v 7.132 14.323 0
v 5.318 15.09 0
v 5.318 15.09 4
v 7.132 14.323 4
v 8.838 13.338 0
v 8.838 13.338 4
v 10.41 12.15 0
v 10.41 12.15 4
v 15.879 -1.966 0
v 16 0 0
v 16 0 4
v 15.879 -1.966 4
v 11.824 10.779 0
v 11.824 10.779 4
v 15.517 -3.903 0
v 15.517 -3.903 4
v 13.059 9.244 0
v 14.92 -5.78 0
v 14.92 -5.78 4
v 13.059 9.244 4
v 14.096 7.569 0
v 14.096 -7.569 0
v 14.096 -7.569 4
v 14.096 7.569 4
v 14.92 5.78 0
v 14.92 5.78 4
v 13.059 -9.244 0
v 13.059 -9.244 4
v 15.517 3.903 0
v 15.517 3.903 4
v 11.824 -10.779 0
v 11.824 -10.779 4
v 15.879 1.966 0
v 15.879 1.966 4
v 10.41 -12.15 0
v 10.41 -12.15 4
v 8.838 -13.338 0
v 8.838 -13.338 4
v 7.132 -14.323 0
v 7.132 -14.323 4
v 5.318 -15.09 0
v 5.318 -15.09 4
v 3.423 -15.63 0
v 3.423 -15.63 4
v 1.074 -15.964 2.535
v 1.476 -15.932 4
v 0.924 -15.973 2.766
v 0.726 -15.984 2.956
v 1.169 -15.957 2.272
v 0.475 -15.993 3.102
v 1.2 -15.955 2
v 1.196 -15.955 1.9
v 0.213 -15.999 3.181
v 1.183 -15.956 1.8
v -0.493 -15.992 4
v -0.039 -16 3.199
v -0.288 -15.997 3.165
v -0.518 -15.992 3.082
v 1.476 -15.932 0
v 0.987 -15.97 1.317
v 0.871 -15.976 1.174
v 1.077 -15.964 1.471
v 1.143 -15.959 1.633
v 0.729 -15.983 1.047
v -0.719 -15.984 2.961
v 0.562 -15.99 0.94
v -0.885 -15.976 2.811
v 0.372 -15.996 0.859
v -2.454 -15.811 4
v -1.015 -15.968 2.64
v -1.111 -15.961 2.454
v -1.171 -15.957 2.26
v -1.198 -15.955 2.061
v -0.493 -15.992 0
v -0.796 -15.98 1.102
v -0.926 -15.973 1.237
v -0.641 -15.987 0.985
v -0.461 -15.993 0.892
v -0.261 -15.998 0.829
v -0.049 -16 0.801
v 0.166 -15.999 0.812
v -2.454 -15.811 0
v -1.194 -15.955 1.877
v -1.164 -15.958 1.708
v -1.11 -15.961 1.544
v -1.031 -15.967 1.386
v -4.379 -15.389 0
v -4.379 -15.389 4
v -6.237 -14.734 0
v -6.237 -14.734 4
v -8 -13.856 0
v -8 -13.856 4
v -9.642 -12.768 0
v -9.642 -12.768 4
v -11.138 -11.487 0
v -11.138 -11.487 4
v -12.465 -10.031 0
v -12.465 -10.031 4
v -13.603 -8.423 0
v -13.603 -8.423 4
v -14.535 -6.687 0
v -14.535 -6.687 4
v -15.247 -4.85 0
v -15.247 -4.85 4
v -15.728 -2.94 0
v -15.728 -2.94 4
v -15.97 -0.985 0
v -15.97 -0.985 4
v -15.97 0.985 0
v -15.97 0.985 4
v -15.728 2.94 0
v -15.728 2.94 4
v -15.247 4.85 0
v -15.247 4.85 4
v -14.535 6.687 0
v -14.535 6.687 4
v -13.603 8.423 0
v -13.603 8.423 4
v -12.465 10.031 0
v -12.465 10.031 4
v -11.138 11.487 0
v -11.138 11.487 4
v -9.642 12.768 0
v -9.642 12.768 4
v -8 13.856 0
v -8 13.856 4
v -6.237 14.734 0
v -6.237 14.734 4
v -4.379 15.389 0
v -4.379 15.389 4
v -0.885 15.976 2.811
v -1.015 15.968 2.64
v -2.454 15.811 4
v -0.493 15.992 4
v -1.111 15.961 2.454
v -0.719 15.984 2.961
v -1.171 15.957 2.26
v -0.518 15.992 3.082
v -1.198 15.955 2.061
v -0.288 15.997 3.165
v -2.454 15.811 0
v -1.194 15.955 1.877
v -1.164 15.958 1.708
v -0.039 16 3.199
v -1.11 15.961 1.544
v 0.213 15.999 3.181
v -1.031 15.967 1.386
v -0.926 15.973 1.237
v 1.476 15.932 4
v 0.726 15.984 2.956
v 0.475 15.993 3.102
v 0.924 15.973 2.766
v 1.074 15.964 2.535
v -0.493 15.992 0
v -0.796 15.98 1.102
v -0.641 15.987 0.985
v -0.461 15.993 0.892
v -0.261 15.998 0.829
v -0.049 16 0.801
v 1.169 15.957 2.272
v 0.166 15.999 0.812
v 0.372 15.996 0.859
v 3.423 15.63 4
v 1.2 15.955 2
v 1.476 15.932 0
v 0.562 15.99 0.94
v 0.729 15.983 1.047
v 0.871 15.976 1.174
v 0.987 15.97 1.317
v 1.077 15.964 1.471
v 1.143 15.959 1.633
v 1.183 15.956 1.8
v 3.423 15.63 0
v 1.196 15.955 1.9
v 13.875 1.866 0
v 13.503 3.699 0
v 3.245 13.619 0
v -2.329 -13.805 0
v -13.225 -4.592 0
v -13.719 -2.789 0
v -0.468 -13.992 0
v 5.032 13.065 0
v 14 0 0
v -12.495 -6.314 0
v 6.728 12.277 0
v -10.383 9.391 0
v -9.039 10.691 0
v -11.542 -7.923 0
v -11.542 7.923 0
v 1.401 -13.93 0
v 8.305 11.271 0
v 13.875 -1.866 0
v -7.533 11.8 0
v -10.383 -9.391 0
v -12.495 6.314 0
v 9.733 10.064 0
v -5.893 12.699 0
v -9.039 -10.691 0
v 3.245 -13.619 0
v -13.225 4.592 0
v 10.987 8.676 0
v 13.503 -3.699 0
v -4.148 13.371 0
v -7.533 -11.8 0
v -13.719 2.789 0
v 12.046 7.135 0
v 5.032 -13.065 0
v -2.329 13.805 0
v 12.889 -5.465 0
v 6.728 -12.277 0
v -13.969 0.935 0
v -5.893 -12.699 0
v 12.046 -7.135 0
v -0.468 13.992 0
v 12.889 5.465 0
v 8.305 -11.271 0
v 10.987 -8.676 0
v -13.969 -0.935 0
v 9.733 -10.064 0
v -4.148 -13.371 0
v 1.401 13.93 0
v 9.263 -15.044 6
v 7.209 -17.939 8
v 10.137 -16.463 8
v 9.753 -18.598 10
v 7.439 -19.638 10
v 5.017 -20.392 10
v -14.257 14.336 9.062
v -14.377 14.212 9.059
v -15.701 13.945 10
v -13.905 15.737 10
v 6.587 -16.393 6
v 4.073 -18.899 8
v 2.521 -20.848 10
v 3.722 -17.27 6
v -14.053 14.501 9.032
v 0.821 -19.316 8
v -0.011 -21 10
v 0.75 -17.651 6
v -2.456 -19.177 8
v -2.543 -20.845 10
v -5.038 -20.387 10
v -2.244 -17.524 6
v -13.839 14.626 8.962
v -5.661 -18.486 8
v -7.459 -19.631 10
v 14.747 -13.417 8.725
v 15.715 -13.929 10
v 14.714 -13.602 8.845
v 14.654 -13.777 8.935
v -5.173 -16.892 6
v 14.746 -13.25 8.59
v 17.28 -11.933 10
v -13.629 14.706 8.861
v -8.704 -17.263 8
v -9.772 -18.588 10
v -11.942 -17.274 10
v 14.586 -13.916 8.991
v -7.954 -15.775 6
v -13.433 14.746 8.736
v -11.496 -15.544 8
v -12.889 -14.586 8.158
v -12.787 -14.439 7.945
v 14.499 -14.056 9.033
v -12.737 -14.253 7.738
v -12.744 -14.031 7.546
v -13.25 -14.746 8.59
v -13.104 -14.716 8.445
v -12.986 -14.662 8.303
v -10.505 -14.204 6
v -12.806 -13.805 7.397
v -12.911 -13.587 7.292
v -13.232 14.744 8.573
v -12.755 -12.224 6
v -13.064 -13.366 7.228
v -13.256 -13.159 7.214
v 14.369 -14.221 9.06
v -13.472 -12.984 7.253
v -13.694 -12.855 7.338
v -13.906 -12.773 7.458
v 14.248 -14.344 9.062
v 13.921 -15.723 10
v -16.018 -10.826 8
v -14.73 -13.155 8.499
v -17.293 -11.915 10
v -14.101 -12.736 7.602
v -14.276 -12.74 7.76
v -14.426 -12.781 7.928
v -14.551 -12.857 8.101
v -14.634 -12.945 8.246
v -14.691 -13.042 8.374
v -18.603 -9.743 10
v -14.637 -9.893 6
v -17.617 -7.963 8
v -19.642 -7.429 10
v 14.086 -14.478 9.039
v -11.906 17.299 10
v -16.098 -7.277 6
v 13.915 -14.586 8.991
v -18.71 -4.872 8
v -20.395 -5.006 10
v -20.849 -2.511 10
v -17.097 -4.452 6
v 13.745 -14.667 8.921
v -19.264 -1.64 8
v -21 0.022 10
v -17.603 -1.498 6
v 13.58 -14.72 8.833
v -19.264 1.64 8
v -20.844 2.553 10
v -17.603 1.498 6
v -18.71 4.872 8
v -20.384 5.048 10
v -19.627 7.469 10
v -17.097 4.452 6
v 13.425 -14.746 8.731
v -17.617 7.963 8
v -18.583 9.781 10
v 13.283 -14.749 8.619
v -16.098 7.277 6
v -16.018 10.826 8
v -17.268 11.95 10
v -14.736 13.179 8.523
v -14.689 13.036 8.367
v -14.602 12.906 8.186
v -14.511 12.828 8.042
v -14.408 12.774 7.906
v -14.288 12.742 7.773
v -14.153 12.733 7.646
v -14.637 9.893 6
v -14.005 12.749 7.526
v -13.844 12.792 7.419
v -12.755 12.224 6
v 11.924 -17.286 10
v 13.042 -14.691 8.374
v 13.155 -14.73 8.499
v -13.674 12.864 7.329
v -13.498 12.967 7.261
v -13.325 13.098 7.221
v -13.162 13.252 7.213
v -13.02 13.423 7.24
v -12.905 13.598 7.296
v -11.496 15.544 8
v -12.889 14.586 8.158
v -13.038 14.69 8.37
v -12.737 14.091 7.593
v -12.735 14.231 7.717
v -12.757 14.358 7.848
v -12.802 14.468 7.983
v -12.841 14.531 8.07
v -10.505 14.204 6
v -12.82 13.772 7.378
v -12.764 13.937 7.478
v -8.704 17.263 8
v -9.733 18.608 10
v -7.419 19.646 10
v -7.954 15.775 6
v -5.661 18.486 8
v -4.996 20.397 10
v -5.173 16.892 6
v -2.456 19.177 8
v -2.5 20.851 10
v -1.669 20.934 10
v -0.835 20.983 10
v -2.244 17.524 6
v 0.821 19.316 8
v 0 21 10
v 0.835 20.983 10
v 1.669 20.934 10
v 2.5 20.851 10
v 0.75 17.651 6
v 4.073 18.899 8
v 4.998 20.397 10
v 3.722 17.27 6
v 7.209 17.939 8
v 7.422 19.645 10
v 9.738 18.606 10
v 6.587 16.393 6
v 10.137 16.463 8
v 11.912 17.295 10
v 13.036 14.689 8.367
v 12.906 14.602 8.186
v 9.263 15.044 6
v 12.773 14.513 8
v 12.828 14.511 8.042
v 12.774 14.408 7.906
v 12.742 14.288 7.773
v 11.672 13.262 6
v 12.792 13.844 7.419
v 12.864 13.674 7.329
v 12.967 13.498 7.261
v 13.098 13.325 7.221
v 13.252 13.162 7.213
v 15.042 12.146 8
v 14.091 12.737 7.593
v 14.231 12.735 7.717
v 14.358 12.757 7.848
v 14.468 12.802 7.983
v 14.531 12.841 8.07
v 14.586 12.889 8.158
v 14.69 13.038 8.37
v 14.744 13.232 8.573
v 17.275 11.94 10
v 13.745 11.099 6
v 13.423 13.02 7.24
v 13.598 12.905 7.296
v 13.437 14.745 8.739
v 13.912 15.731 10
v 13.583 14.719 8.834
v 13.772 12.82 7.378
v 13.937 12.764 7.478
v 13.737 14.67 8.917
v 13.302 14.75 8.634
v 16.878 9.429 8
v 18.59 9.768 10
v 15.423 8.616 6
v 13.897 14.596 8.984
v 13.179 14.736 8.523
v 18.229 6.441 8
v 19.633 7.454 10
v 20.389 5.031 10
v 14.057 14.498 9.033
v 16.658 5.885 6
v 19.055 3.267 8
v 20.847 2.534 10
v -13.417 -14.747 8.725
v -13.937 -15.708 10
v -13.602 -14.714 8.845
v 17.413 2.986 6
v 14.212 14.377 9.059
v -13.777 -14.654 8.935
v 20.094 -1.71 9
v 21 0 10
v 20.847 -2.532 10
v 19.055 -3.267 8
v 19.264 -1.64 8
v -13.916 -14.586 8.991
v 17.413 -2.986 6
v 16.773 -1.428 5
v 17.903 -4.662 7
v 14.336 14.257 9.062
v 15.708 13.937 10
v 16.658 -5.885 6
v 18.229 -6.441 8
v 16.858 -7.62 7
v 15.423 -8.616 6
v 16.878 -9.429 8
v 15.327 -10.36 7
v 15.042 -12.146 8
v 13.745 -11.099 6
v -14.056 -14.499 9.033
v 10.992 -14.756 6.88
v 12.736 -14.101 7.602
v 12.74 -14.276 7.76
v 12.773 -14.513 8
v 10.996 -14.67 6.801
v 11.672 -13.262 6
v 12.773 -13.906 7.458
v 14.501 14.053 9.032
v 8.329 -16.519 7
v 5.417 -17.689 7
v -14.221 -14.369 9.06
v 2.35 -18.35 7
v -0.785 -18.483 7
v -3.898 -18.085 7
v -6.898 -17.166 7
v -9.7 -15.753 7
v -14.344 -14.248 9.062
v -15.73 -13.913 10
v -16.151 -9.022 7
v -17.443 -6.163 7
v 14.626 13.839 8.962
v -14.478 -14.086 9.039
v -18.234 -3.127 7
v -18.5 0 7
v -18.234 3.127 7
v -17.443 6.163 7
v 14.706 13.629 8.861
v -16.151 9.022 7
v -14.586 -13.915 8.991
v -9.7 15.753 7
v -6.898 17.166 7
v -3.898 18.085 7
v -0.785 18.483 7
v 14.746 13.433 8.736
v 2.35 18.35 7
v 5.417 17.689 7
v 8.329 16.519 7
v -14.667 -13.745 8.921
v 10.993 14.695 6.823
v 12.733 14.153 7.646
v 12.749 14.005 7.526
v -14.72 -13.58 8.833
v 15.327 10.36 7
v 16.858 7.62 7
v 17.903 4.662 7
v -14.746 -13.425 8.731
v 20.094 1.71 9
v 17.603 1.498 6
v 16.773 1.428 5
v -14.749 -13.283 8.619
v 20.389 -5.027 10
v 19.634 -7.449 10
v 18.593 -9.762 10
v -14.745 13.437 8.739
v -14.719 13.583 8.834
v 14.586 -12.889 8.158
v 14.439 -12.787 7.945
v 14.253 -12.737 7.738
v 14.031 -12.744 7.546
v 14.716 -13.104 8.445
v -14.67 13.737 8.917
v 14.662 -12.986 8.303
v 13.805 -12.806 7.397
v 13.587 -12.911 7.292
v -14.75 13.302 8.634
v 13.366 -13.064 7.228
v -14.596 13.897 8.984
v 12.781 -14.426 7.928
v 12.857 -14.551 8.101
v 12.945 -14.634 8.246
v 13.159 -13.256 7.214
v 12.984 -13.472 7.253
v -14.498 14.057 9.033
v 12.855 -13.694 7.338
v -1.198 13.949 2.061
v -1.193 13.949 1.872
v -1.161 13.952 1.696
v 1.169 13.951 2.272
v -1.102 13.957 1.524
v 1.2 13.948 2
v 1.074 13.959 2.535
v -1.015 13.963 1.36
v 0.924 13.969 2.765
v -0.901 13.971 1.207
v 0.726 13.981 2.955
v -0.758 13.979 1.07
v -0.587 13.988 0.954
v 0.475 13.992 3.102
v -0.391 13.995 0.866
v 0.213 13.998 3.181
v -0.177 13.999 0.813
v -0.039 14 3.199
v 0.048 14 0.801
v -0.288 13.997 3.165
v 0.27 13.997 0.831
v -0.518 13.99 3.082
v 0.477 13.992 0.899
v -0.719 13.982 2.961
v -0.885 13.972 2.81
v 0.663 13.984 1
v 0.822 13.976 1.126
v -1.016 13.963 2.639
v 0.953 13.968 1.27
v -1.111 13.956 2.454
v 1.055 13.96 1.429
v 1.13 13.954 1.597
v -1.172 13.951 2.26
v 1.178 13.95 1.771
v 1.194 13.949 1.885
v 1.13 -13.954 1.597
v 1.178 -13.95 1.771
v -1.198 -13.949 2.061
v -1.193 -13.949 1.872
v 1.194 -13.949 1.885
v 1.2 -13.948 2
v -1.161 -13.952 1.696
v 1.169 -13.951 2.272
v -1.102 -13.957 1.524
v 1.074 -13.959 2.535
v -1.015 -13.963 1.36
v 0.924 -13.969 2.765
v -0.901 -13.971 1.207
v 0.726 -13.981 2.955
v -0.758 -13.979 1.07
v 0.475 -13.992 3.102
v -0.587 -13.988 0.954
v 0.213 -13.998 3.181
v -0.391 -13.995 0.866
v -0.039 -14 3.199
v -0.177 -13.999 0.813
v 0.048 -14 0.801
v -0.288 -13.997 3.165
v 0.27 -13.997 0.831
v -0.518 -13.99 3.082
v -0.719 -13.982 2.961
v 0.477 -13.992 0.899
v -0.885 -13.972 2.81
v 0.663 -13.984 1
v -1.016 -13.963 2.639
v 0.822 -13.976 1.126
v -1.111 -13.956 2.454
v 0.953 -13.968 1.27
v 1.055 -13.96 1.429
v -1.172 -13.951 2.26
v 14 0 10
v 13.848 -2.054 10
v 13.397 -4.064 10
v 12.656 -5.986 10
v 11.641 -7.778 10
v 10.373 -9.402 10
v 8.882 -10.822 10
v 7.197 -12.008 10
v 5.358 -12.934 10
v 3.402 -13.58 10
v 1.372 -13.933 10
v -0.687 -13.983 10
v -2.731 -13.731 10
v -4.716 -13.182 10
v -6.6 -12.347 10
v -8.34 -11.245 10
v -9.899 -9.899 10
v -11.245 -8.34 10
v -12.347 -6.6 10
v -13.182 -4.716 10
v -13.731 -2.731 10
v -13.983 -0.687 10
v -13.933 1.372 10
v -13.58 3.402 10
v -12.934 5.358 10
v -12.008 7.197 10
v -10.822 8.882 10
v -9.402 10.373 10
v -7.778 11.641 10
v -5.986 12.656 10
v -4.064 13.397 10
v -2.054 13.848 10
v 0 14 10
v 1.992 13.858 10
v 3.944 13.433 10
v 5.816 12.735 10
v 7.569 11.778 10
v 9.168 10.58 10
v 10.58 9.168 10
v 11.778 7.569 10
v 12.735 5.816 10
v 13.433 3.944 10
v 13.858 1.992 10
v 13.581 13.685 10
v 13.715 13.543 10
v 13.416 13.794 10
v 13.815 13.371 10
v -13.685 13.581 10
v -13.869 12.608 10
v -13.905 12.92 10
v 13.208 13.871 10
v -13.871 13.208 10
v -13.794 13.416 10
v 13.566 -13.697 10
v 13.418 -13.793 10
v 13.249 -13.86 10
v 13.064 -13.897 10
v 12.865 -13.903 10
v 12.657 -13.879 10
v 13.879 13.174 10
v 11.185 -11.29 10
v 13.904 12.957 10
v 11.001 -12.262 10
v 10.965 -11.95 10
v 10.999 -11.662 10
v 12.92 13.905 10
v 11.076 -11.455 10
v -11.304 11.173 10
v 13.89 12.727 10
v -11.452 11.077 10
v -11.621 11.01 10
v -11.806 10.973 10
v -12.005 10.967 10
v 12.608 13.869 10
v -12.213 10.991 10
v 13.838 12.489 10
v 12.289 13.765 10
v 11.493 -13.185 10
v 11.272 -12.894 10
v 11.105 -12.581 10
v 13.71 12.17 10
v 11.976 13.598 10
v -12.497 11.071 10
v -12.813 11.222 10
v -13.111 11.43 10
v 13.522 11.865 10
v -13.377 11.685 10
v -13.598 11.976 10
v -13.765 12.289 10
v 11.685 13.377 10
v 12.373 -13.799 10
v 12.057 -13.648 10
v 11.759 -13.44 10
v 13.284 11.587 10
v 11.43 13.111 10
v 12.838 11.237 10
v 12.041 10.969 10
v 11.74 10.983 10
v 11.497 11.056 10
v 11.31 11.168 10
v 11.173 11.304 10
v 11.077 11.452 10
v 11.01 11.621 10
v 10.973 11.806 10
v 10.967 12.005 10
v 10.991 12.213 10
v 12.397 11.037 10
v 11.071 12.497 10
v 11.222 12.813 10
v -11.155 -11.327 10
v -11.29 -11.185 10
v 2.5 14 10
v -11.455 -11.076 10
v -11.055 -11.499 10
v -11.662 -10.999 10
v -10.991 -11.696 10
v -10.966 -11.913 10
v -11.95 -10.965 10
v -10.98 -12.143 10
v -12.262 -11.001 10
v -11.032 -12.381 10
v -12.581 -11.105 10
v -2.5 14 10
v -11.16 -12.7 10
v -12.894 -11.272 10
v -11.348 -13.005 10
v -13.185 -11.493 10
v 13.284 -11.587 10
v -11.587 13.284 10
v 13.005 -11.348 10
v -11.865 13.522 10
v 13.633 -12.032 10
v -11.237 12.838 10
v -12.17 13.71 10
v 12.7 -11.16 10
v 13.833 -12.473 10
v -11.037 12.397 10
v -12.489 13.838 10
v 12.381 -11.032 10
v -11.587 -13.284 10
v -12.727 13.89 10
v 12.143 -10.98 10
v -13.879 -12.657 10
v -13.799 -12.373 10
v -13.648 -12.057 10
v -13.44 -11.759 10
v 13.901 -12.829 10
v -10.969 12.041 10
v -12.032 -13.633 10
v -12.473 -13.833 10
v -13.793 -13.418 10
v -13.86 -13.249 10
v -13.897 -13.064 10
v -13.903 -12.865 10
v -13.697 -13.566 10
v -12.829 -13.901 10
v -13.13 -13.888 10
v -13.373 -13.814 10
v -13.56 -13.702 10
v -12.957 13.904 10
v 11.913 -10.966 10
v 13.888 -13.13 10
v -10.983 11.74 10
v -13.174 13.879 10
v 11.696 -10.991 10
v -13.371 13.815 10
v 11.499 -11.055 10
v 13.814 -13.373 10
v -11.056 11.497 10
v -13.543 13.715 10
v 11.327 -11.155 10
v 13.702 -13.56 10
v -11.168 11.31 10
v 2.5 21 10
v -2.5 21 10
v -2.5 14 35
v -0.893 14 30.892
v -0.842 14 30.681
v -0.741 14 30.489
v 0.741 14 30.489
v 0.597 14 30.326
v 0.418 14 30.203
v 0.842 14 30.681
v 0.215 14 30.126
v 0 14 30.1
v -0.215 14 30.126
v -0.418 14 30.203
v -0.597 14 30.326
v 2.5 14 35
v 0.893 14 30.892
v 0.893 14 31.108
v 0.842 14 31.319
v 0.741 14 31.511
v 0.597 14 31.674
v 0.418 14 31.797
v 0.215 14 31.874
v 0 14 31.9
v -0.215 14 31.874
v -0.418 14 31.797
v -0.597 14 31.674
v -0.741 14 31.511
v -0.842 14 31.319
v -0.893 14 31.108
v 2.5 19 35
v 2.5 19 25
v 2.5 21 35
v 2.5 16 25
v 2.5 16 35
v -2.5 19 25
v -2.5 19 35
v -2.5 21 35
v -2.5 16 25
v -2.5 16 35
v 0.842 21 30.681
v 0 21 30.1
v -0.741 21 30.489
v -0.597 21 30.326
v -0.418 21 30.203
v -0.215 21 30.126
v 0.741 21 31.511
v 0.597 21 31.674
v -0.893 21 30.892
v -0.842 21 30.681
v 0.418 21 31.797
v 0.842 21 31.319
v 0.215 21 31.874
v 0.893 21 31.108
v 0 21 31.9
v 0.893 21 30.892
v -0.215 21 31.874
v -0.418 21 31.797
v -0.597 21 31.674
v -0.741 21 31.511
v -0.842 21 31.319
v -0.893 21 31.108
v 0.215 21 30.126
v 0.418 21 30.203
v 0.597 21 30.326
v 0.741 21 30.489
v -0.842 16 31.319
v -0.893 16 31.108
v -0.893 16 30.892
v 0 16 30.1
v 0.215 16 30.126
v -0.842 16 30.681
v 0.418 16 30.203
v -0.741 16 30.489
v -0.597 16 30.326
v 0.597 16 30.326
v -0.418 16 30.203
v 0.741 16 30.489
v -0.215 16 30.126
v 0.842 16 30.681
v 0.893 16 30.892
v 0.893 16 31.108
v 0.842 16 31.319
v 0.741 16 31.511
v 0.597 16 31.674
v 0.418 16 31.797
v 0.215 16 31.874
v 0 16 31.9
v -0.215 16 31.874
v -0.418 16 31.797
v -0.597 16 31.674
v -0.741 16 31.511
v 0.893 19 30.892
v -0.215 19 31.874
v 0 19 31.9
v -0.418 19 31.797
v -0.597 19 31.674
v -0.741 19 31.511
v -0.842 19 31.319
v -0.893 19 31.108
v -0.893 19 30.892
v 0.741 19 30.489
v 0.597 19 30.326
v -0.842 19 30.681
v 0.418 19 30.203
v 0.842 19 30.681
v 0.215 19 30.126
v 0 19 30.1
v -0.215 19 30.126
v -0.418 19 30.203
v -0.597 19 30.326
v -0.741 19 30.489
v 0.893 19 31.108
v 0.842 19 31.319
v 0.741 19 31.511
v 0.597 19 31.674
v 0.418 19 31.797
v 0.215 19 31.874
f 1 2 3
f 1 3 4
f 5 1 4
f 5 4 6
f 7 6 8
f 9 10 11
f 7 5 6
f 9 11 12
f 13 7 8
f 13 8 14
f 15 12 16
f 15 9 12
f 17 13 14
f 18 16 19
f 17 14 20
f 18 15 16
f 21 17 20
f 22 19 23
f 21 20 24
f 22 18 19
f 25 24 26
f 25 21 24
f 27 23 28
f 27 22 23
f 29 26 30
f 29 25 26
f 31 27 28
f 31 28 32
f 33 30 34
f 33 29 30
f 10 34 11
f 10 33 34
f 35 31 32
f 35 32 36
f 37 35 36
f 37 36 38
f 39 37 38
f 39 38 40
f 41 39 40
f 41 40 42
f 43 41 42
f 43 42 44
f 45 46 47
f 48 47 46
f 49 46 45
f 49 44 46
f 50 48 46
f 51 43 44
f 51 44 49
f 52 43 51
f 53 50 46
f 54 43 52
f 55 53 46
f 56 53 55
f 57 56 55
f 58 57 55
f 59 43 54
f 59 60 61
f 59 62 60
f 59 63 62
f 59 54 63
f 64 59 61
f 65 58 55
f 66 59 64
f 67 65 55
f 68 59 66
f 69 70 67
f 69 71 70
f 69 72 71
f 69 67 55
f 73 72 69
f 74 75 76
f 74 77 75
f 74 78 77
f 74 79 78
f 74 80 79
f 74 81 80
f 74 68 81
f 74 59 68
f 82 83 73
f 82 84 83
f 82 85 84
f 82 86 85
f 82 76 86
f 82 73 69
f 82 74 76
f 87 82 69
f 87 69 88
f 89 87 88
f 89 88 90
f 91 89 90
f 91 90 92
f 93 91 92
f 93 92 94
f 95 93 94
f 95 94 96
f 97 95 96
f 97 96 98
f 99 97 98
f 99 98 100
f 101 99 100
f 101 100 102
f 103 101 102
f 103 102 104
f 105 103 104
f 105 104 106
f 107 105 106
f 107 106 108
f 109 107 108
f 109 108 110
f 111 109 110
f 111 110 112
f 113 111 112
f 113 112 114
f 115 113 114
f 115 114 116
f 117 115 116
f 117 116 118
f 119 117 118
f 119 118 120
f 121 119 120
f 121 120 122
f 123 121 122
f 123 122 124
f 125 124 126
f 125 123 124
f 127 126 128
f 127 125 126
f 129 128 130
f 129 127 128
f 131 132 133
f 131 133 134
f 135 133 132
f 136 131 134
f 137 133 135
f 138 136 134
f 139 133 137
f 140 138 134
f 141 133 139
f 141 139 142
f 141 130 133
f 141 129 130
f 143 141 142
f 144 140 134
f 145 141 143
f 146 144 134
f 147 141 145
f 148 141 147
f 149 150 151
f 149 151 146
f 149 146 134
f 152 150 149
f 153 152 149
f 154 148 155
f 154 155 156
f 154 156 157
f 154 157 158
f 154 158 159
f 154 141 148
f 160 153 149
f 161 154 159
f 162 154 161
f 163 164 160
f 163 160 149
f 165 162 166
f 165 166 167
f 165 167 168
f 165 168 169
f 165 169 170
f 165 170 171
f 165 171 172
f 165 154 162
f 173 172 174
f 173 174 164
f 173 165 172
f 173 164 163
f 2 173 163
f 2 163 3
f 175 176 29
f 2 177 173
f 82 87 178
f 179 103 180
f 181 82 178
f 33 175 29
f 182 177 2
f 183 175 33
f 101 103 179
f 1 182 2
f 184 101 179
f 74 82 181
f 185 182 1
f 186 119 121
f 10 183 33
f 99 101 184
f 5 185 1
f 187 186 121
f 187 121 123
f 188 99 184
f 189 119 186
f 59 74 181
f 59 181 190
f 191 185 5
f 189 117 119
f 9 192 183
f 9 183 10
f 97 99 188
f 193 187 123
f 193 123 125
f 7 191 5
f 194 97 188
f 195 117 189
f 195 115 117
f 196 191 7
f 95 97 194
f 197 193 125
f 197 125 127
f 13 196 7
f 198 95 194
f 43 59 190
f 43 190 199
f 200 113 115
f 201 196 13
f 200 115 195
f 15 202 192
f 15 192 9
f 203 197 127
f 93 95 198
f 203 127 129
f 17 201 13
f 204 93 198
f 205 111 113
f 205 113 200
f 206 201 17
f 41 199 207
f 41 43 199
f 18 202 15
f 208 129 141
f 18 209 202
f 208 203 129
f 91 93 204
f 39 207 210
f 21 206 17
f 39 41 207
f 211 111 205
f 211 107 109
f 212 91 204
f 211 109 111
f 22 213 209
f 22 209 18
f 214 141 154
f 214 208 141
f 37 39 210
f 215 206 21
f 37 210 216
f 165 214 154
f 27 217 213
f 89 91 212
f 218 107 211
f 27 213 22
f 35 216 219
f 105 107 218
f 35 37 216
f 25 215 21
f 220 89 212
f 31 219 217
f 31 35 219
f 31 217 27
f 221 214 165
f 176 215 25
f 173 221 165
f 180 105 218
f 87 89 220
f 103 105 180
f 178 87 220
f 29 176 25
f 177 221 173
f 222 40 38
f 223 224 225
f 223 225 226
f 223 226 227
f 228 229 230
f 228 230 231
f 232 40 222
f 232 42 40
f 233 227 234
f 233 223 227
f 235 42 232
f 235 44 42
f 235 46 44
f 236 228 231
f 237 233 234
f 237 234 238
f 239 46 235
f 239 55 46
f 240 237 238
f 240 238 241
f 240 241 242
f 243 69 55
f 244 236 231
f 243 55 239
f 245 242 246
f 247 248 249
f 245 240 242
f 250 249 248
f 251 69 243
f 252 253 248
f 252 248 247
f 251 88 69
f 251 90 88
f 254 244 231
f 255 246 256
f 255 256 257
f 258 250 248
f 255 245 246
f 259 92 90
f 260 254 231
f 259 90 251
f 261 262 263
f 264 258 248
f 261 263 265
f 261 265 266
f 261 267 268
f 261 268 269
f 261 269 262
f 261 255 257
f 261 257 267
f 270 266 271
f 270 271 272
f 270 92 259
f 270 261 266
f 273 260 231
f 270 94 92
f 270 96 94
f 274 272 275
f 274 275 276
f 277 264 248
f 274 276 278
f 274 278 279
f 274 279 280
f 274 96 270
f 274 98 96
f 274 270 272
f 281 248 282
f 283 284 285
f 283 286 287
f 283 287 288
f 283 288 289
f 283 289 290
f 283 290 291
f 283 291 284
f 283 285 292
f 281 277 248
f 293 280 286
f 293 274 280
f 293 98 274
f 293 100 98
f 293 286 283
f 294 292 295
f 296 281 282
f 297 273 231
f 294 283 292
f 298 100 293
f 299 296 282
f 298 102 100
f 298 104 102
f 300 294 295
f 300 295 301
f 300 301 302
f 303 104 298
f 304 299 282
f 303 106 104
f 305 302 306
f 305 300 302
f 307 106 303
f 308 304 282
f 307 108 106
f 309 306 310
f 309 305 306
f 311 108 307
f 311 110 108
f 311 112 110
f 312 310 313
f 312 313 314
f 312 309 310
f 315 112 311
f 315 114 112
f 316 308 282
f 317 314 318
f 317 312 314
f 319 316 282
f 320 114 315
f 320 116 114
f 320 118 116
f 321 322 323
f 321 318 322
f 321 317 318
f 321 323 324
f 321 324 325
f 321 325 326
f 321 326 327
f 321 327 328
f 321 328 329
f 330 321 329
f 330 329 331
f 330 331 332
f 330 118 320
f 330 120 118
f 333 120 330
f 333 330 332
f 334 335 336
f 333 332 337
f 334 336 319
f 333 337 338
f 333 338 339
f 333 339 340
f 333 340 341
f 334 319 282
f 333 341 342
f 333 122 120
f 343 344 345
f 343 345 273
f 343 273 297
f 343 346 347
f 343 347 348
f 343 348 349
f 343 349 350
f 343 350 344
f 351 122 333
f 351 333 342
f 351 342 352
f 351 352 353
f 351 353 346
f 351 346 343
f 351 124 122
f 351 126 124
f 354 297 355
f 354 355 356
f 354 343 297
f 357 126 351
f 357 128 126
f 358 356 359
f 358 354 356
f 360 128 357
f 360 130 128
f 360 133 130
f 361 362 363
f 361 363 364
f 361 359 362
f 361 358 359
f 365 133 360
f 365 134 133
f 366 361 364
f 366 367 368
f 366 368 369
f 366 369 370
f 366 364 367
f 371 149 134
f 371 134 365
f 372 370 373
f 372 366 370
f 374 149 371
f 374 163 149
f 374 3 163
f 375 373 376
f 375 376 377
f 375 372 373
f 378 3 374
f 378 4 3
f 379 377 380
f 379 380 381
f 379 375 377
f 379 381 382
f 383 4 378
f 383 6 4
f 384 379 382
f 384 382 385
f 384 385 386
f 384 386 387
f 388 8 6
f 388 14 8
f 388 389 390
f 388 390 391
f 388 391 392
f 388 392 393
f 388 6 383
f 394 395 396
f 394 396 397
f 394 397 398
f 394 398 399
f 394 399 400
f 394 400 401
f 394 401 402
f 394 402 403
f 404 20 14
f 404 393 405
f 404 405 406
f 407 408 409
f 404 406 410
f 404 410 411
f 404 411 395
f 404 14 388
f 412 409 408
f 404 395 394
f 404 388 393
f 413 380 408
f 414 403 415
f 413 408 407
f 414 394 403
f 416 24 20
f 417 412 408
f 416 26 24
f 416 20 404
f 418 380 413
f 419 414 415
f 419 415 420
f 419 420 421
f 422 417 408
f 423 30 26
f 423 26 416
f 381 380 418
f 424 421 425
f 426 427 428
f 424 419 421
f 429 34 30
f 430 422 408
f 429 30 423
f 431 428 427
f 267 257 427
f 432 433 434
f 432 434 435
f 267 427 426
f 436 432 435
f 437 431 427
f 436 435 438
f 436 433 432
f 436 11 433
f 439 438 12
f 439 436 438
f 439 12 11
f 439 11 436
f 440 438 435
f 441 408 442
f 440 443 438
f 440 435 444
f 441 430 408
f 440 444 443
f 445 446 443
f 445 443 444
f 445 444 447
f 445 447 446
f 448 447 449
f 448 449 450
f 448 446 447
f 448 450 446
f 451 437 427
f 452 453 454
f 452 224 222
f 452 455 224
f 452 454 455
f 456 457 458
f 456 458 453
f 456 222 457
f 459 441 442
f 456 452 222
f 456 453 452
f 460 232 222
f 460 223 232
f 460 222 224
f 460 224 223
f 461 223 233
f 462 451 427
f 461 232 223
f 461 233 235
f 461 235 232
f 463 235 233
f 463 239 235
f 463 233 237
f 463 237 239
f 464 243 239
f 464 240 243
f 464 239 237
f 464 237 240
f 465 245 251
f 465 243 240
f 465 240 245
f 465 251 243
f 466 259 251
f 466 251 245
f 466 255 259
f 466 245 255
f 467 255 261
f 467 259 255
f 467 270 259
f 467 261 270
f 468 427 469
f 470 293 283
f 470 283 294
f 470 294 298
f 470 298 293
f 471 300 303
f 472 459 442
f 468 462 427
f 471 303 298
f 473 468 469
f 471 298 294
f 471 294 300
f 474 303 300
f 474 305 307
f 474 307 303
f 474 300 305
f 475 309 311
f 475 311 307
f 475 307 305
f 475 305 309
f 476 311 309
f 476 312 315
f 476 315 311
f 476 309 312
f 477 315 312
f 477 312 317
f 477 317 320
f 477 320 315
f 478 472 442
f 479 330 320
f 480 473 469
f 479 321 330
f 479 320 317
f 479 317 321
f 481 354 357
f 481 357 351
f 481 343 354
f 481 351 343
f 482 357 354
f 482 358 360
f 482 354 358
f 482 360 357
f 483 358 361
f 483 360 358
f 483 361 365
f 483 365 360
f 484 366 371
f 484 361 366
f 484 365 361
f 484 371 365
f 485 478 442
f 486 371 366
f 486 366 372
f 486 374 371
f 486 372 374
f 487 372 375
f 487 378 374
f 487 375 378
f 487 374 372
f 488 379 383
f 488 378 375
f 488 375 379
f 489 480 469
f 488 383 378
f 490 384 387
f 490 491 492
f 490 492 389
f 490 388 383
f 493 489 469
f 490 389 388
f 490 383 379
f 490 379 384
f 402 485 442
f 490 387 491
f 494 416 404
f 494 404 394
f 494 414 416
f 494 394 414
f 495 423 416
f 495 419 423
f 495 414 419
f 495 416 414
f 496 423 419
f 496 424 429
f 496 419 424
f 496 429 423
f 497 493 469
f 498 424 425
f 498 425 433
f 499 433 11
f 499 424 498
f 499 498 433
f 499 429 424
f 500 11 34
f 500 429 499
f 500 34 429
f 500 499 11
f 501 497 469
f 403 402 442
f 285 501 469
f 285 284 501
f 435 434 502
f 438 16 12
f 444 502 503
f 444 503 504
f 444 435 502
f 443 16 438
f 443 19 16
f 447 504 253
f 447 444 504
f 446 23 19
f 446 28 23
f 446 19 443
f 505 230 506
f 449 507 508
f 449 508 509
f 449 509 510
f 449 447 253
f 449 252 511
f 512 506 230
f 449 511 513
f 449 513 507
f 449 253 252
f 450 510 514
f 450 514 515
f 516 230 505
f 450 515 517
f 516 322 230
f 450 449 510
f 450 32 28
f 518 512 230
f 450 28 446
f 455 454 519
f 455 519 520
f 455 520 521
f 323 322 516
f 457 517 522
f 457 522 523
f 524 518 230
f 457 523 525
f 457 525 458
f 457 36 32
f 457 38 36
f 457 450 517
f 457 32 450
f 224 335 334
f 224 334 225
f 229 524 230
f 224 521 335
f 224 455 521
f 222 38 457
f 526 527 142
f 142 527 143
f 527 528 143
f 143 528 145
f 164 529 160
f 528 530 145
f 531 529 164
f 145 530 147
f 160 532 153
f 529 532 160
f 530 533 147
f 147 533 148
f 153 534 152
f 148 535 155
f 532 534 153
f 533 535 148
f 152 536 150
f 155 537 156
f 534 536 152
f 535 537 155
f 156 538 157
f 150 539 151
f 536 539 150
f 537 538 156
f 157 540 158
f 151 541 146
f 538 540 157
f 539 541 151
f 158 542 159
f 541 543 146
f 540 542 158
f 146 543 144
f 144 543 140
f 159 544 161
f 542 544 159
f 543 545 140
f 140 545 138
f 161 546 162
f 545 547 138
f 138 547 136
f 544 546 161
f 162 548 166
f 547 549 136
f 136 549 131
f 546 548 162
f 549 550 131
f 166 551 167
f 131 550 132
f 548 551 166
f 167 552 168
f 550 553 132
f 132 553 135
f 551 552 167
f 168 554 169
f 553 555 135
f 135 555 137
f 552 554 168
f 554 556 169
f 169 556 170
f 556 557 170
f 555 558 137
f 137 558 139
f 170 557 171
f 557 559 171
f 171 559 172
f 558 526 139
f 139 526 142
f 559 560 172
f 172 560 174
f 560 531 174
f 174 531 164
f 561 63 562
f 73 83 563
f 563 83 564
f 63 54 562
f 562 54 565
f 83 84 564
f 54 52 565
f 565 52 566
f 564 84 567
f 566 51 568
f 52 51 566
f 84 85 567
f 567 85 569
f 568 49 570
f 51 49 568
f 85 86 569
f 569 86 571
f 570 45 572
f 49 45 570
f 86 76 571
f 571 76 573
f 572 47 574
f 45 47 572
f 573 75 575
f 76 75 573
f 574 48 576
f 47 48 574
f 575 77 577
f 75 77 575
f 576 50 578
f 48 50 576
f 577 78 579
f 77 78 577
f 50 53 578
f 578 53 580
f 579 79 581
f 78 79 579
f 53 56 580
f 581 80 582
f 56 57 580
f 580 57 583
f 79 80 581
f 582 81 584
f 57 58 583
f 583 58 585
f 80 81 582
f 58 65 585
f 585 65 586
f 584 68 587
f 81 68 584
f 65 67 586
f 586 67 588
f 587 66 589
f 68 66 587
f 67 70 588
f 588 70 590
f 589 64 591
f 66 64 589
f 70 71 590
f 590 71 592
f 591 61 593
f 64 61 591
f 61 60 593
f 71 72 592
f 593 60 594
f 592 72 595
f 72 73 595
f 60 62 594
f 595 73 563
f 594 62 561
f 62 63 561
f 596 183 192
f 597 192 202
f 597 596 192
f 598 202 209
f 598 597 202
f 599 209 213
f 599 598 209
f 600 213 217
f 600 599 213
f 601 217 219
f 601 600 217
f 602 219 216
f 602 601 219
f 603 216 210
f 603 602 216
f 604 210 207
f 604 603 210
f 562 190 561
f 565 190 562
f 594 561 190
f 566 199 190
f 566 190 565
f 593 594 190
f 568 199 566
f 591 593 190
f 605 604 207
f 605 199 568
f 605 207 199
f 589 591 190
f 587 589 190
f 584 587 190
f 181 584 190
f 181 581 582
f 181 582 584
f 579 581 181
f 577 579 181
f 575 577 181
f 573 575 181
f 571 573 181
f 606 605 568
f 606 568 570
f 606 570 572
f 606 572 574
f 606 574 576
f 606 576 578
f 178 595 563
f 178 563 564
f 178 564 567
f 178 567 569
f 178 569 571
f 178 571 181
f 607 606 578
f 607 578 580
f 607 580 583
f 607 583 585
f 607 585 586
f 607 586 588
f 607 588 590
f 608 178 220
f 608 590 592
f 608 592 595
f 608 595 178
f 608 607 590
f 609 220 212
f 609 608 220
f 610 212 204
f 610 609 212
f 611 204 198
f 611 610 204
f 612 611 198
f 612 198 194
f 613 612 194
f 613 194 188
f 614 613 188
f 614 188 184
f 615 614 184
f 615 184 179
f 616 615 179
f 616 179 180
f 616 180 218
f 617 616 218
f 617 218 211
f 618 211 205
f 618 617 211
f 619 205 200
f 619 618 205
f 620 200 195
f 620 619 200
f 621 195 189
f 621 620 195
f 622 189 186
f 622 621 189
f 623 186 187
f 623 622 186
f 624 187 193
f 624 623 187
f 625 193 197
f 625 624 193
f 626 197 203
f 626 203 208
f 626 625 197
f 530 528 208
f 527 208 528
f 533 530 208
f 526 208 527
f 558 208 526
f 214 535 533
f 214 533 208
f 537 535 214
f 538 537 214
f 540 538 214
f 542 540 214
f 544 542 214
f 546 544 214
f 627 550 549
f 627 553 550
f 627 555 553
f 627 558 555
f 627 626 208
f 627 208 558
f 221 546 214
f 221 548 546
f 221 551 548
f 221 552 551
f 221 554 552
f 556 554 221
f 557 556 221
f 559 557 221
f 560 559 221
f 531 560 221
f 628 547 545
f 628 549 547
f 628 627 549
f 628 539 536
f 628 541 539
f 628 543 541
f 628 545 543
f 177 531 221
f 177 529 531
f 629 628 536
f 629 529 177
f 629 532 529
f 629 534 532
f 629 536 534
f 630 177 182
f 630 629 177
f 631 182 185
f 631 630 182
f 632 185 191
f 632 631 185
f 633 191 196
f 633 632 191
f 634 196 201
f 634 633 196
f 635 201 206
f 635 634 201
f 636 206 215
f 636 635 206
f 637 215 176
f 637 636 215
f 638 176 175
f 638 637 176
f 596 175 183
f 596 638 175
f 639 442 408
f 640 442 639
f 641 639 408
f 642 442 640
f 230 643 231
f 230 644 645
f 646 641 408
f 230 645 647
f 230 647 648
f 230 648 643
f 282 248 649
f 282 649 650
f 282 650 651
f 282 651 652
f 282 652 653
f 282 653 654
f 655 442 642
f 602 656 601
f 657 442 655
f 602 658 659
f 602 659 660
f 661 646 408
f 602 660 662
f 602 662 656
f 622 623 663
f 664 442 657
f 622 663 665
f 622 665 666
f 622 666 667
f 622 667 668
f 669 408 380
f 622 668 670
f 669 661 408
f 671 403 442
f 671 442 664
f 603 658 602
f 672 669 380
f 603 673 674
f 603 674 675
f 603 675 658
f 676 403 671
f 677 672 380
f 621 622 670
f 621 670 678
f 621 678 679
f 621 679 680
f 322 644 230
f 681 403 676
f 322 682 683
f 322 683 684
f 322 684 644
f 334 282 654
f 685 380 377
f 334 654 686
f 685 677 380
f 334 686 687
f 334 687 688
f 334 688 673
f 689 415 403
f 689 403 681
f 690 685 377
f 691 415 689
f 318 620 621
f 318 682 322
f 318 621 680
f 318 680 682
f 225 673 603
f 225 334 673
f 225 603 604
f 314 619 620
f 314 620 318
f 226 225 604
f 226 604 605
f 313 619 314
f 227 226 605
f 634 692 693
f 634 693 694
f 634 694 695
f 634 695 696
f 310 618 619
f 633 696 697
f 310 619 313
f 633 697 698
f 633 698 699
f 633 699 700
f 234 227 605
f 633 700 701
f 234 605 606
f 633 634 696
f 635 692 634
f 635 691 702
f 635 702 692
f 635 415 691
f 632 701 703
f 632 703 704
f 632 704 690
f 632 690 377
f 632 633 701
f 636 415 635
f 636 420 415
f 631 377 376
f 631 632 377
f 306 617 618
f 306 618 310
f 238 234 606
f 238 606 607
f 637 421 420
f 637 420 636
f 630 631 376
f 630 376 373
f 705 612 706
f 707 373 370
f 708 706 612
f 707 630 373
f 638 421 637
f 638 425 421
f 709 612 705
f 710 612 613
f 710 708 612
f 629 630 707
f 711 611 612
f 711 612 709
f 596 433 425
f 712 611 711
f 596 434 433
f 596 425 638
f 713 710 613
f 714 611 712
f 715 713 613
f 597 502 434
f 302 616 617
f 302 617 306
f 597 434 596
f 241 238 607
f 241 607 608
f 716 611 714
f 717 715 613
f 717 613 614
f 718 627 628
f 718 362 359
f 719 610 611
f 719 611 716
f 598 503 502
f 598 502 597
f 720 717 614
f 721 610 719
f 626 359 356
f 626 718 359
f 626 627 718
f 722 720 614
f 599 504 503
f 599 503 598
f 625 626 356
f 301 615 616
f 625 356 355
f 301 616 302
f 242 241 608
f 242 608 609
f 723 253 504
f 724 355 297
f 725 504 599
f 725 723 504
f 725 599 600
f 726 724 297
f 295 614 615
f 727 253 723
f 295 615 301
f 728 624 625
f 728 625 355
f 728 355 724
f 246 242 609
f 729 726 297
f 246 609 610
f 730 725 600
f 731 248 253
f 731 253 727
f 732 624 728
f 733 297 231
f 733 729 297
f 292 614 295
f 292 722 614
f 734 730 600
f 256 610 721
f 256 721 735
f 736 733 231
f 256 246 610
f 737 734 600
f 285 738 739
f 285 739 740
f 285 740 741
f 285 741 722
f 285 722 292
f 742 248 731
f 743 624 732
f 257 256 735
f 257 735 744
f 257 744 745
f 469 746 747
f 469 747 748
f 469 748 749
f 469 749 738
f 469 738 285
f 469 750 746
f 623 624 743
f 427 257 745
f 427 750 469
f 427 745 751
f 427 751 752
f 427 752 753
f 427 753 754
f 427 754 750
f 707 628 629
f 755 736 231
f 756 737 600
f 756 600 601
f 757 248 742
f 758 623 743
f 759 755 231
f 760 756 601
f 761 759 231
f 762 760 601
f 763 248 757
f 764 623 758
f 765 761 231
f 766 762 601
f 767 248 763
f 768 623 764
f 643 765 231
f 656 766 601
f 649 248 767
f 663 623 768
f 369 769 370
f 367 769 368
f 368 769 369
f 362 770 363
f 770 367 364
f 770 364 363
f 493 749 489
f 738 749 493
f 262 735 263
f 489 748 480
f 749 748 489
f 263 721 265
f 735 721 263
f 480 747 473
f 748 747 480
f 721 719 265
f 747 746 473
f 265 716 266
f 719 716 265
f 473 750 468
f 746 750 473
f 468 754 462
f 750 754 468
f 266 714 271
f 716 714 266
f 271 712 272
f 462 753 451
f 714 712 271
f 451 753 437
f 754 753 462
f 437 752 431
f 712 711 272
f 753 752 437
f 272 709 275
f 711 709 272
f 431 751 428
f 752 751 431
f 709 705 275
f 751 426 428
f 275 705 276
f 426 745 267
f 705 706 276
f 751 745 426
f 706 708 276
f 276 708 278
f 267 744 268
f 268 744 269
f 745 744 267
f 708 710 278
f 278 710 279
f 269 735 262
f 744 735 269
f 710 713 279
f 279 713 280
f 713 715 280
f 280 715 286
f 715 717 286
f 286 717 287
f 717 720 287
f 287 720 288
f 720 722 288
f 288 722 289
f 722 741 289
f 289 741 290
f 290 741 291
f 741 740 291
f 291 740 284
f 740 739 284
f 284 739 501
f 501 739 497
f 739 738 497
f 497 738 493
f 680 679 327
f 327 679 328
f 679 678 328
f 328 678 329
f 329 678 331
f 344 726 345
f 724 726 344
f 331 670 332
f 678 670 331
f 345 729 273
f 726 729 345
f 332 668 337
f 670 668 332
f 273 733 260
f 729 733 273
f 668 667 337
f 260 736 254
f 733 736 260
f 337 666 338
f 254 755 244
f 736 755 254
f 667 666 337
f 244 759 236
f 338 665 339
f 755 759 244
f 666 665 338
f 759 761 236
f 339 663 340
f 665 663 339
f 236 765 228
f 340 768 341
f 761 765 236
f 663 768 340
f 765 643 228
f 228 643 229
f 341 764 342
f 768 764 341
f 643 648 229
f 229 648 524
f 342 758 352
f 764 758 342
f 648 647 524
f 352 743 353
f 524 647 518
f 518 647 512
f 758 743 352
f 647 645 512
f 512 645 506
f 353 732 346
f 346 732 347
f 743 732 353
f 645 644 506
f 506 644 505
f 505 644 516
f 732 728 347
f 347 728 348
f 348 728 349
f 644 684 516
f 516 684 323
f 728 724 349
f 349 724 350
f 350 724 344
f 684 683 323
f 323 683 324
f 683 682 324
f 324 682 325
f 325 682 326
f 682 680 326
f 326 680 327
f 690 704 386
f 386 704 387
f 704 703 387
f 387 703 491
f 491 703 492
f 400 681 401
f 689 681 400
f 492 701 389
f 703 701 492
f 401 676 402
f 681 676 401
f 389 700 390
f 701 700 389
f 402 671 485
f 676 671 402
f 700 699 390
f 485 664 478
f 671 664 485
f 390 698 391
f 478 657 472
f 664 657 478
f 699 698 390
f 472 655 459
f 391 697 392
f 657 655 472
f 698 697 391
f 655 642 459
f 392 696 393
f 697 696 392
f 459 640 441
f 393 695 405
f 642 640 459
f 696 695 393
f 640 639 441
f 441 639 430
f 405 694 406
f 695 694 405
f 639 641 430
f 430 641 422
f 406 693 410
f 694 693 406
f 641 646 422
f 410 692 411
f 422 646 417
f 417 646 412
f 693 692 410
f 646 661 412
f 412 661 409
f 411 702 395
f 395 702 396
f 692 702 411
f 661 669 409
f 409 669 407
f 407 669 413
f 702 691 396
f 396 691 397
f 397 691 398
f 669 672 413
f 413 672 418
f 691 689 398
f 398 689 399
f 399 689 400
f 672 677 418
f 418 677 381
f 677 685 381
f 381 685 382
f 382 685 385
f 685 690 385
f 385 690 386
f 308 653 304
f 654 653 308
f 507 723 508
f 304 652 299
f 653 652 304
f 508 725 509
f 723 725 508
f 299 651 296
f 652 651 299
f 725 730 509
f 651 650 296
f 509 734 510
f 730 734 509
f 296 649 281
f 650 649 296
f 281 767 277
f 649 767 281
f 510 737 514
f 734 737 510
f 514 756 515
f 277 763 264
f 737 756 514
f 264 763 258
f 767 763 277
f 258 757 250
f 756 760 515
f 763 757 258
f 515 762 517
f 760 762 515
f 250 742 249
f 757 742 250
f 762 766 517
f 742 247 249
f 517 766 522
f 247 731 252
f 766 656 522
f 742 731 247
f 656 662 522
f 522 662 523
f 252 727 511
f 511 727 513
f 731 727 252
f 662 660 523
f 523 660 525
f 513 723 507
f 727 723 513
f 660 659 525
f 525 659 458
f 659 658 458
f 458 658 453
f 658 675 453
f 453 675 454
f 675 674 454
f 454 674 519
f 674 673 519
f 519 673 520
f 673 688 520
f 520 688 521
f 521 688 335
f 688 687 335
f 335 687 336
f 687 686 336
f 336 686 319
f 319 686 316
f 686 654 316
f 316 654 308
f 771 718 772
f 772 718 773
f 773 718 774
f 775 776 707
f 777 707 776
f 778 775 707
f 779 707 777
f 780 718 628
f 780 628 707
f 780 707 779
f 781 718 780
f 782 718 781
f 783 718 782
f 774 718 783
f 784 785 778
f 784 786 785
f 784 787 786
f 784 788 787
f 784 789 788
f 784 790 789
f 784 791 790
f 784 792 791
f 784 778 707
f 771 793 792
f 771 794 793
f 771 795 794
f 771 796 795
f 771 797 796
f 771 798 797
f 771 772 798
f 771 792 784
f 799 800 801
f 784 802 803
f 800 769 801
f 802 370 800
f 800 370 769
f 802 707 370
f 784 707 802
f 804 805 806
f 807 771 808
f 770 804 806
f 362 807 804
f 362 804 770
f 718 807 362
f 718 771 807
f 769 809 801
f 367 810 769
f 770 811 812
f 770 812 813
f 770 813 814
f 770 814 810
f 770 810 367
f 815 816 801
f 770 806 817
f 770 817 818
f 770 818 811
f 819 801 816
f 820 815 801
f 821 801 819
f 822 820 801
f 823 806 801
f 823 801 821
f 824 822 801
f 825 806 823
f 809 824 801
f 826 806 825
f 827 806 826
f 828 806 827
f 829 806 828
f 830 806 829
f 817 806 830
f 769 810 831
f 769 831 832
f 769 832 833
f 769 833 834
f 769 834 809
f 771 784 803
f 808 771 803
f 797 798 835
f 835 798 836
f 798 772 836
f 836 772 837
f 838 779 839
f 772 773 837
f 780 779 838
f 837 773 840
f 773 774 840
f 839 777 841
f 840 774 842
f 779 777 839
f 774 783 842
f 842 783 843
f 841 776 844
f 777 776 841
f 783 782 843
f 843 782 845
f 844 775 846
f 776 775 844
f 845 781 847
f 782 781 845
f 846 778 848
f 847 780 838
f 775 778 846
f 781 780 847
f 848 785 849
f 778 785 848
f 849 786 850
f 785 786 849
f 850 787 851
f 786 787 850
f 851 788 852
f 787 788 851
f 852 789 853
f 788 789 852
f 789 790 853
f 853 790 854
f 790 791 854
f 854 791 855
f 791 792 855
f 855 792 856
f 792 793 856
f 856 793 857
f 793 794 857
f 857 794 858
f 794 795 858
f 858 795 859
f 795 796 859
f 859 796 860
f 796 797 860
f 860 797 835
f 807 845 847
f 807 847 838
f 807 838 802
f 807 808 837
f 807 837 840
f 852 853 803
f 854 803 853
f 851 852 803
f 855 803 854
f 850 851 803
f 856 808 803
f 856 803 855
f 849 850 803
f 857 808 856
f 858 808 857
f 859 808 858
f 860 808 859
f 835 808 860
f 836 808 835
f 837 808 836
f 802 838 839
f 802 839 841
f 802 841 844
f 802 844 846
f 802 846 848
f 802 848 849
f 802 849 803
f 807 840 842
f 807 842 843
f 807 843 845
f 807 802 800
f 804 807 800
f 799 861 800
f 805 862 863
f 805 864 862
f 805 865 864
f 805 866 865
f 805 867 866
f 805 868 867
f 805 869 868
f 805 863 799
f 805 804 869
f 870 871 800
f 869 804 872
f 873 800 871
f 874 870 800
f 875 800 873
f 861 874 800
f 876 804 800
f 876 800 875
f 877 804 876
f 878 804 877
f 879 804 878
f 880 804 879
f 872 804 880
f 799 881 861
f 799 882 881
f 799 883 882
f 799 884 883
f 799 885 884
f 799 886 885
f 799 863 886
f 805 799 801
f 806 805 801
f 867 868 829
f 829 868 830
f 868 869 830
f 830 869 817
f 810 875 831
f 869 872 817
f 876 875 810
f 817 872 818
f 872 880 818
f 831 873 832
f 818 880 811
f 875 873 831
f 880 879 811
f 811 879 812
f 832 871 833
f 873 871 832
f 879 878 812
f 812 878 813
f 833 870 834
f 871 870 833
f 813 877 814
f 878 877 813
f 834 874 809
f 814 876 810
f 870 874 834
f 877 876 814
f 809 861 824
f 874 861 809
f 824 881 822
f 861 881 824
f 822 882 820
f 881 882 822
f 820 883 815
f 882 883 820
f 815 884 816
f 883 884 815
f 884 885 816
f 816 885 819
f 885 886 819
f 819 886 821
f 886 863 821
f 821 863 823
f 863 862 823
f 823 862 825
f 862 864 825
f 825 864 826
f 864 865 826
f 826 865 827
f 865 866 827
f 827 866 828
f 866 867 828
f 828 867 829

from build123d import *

# Parameters (mm, degrees)
CYLINDER001_R               = 1.2
CYLINDER001_DEPTH           = 10
CYLINDER001_ROLL_ANGLE      = -45
CYLINDER001_PLACEMENT_ANGLE = 45
CYLINDER002_R               = 1.2
CYLINDER002_DEPTH           = 10
CYLINDER002_ROLL_ANGLE      = 45
CYLINDER002_PLACEMENT_ANGLE = -45
CYLINDER003_R               = 1.2
CYLINDER003_DEPTH           = 10
CYLINDER003_ROLL_ANGLE      = 45
CYLINDER003_PLACEMENT_ANGLE = 45
CYLINDER_R                  = 1.2
CYLINDER_DEPTH              = 10
CYLINDER_ROLL_ANGLE         = -45
CYLINDER_PLACEMENT_ANGLE    = -45
PAD_DEPTH                   = 5
SKETCH003_R                 = 0.9
POCKET001_DEPTH             = 7.001
SKETCH001_R                 = 1.2
POCKET_DEPTH                = 38.001


with BuildPart() as cylinder001:
    # Cylinder001 → Cylinder001 (new body)
    with BuildSketch(Plane.XY):
        Circle(CYLINDER001_R)
    extrude(amount=CYLINDER001_DEPTH)


with BuildPart() as cylinder001_1:
    # Cylinder001 roll: moved
    add(cylinder001.part.rotate(Axis((0, 0, 0), (1, 0, 0)), CYLINDER001_ROLL_ANGLE))


with BuildPart() as cylinder001_2:
    # Cylinder001 placement: moved
    add(cylinder001_1.part.moved(Location((14.349242, -14.349242, 7.292893))).rotate(Axis((14.349242, -14.349242, 7.292893), (0, 0, 1)), CYLINDER001_PLACEMENT_ANGLE))


with BuildPart() as cylinder002:
    # Cylinder002 → Cylinder002 (new body)
    with BuildSketch(Plane.XY):
        Circle(CYLINDER002_R)
    extrude(amount=CYLINDER002_DEPTH)


with BuildPart() as cylinder002_1:
    # Cylinder002 roll: moved
    add(cylinder002.part.rotate(Axis((0, 0, 0), (1, 0, 0)), CYLINDER002_ROLL_ANGLE))


with BuildPart() as cylinder002_2:
    # Cylinder002 placement: moved
    add(cylinder002_1.part.moved(Location((14.349242, 14.349242, 7.292893))).rotate(Axis((14.349242, 14.349242, 7.292893), (0, 0, 1)), CYLINDER002_PLACEMENT_ANGLE))


with BuildPart() as cylinder003:
    # Cylinder003 → Cylinder003 (new body)
    with BuildSketch(Plane.XY):
        Circle(CYLINDER003_R)
    extrude(amount=CYLINDER003_DEPTH)


with BuildPart() as cylinder003_1:
    # Cylinder003 roll: moved
    add(cylinder003.part.rotate(Axis((0, 0, 0), (1, 0, 0)), CYLINDER003_ROLL_ANGLE))


with BuildPart() as cylinder003_2:
    # Cylinder003 placement: moved
    add(cylinder003_1.part.moved(Location((-14.349242, 14.349242, 7.292893))).rotate(Axis((-14.349242, 14.349242, 7.292893), (0, 0, 1)), CYLINDER003_PLACEMENT_ANGLE))


with BuildPart() as fusion001:
    # Cylinder → Cylinder (new body)
    with BuildSketch(Plane.XY):
        Circle(CYLINDER_R)
    extrude(amount=CYLINDER_DEPTH)


with BuildPart() as fusion001_1:
    # Cylinder roll: moved
    add(fusion001.part.rotate(Axis((0, 0, 0), (1, 0, 0)), CYLINDER_ROLL_ANGLE))


with BuildPart() as fusion001_2:
    # Cylinder placement: moved
    add(fusion001_1.part.moved(Location((-14.349242, -14.349242, 7.292893))).rotate(Axis((-14.349242, -14.349242, 7.292893), (0, 0, 1)), CYLINDER_PLACEMENT_ANGLE))

    # Fusion001: union Cylinder001, Cylinder002, Cylinder003
    add(cylinder001_2.part)
    add(cylinder002_2.part)
    add(cylinder003_2.part)


with BuildPart() as body001:
    # Sketch002 → Pad (new body)
    with BuildSketch(Plane.YZ):
        Polygon((14, 10), (14, 35), (16, 35), (16, 25), (19, 25), (19, 35), (21, 35), (21, 10), align=None)
    extrude(amount=PAD_DEPTH)

    # Sketch003 (on Face1 of Pad) → Pocket001 (cut, through all)
    with BuildSketch(Plane(origin=(0, 14, 0), x_dir=(0, 0, -1), z_dir=(0, -1, 0))):
        with Locations((-31, 2.5)):
            Circle(SKETCH003_R)
    extrude(amount=-POCKET001_DEPTH, mode=Mode.SUBTRACT)


with BuildPart() as body001_1:
    # Body001 placement: moved
    add(body001.part.moved(Location((-2.5, 0, 0))))


with BuildPart() as cut:
    # Sketch → Revolution (revolve)
    with BuildSketch(Plane.XZ):
        Polygon((16, 4), (16, 0), (14, 0), (14, 10), (21, 10), align=None)
    revolve(axis=Axis((0, 0, 0), (0, 0, 1)))

    # Sketch001 → Pocket (cut, through all)
    with BuildSketch(Plane.XZ.offset(17)):
        with Locations((0, 2)):
            Circle(SKETCH001_R)
    extrude(amount=-POCKET_DEPTH, mode=Mode.SUBTRACT)

    # Fusion: union Body001
    add(body001_1.part)

    # Cut: cut Fusion001
    add(fusion001_2.part, mode=Mode.SUBTRACT)


solid = cut.part
